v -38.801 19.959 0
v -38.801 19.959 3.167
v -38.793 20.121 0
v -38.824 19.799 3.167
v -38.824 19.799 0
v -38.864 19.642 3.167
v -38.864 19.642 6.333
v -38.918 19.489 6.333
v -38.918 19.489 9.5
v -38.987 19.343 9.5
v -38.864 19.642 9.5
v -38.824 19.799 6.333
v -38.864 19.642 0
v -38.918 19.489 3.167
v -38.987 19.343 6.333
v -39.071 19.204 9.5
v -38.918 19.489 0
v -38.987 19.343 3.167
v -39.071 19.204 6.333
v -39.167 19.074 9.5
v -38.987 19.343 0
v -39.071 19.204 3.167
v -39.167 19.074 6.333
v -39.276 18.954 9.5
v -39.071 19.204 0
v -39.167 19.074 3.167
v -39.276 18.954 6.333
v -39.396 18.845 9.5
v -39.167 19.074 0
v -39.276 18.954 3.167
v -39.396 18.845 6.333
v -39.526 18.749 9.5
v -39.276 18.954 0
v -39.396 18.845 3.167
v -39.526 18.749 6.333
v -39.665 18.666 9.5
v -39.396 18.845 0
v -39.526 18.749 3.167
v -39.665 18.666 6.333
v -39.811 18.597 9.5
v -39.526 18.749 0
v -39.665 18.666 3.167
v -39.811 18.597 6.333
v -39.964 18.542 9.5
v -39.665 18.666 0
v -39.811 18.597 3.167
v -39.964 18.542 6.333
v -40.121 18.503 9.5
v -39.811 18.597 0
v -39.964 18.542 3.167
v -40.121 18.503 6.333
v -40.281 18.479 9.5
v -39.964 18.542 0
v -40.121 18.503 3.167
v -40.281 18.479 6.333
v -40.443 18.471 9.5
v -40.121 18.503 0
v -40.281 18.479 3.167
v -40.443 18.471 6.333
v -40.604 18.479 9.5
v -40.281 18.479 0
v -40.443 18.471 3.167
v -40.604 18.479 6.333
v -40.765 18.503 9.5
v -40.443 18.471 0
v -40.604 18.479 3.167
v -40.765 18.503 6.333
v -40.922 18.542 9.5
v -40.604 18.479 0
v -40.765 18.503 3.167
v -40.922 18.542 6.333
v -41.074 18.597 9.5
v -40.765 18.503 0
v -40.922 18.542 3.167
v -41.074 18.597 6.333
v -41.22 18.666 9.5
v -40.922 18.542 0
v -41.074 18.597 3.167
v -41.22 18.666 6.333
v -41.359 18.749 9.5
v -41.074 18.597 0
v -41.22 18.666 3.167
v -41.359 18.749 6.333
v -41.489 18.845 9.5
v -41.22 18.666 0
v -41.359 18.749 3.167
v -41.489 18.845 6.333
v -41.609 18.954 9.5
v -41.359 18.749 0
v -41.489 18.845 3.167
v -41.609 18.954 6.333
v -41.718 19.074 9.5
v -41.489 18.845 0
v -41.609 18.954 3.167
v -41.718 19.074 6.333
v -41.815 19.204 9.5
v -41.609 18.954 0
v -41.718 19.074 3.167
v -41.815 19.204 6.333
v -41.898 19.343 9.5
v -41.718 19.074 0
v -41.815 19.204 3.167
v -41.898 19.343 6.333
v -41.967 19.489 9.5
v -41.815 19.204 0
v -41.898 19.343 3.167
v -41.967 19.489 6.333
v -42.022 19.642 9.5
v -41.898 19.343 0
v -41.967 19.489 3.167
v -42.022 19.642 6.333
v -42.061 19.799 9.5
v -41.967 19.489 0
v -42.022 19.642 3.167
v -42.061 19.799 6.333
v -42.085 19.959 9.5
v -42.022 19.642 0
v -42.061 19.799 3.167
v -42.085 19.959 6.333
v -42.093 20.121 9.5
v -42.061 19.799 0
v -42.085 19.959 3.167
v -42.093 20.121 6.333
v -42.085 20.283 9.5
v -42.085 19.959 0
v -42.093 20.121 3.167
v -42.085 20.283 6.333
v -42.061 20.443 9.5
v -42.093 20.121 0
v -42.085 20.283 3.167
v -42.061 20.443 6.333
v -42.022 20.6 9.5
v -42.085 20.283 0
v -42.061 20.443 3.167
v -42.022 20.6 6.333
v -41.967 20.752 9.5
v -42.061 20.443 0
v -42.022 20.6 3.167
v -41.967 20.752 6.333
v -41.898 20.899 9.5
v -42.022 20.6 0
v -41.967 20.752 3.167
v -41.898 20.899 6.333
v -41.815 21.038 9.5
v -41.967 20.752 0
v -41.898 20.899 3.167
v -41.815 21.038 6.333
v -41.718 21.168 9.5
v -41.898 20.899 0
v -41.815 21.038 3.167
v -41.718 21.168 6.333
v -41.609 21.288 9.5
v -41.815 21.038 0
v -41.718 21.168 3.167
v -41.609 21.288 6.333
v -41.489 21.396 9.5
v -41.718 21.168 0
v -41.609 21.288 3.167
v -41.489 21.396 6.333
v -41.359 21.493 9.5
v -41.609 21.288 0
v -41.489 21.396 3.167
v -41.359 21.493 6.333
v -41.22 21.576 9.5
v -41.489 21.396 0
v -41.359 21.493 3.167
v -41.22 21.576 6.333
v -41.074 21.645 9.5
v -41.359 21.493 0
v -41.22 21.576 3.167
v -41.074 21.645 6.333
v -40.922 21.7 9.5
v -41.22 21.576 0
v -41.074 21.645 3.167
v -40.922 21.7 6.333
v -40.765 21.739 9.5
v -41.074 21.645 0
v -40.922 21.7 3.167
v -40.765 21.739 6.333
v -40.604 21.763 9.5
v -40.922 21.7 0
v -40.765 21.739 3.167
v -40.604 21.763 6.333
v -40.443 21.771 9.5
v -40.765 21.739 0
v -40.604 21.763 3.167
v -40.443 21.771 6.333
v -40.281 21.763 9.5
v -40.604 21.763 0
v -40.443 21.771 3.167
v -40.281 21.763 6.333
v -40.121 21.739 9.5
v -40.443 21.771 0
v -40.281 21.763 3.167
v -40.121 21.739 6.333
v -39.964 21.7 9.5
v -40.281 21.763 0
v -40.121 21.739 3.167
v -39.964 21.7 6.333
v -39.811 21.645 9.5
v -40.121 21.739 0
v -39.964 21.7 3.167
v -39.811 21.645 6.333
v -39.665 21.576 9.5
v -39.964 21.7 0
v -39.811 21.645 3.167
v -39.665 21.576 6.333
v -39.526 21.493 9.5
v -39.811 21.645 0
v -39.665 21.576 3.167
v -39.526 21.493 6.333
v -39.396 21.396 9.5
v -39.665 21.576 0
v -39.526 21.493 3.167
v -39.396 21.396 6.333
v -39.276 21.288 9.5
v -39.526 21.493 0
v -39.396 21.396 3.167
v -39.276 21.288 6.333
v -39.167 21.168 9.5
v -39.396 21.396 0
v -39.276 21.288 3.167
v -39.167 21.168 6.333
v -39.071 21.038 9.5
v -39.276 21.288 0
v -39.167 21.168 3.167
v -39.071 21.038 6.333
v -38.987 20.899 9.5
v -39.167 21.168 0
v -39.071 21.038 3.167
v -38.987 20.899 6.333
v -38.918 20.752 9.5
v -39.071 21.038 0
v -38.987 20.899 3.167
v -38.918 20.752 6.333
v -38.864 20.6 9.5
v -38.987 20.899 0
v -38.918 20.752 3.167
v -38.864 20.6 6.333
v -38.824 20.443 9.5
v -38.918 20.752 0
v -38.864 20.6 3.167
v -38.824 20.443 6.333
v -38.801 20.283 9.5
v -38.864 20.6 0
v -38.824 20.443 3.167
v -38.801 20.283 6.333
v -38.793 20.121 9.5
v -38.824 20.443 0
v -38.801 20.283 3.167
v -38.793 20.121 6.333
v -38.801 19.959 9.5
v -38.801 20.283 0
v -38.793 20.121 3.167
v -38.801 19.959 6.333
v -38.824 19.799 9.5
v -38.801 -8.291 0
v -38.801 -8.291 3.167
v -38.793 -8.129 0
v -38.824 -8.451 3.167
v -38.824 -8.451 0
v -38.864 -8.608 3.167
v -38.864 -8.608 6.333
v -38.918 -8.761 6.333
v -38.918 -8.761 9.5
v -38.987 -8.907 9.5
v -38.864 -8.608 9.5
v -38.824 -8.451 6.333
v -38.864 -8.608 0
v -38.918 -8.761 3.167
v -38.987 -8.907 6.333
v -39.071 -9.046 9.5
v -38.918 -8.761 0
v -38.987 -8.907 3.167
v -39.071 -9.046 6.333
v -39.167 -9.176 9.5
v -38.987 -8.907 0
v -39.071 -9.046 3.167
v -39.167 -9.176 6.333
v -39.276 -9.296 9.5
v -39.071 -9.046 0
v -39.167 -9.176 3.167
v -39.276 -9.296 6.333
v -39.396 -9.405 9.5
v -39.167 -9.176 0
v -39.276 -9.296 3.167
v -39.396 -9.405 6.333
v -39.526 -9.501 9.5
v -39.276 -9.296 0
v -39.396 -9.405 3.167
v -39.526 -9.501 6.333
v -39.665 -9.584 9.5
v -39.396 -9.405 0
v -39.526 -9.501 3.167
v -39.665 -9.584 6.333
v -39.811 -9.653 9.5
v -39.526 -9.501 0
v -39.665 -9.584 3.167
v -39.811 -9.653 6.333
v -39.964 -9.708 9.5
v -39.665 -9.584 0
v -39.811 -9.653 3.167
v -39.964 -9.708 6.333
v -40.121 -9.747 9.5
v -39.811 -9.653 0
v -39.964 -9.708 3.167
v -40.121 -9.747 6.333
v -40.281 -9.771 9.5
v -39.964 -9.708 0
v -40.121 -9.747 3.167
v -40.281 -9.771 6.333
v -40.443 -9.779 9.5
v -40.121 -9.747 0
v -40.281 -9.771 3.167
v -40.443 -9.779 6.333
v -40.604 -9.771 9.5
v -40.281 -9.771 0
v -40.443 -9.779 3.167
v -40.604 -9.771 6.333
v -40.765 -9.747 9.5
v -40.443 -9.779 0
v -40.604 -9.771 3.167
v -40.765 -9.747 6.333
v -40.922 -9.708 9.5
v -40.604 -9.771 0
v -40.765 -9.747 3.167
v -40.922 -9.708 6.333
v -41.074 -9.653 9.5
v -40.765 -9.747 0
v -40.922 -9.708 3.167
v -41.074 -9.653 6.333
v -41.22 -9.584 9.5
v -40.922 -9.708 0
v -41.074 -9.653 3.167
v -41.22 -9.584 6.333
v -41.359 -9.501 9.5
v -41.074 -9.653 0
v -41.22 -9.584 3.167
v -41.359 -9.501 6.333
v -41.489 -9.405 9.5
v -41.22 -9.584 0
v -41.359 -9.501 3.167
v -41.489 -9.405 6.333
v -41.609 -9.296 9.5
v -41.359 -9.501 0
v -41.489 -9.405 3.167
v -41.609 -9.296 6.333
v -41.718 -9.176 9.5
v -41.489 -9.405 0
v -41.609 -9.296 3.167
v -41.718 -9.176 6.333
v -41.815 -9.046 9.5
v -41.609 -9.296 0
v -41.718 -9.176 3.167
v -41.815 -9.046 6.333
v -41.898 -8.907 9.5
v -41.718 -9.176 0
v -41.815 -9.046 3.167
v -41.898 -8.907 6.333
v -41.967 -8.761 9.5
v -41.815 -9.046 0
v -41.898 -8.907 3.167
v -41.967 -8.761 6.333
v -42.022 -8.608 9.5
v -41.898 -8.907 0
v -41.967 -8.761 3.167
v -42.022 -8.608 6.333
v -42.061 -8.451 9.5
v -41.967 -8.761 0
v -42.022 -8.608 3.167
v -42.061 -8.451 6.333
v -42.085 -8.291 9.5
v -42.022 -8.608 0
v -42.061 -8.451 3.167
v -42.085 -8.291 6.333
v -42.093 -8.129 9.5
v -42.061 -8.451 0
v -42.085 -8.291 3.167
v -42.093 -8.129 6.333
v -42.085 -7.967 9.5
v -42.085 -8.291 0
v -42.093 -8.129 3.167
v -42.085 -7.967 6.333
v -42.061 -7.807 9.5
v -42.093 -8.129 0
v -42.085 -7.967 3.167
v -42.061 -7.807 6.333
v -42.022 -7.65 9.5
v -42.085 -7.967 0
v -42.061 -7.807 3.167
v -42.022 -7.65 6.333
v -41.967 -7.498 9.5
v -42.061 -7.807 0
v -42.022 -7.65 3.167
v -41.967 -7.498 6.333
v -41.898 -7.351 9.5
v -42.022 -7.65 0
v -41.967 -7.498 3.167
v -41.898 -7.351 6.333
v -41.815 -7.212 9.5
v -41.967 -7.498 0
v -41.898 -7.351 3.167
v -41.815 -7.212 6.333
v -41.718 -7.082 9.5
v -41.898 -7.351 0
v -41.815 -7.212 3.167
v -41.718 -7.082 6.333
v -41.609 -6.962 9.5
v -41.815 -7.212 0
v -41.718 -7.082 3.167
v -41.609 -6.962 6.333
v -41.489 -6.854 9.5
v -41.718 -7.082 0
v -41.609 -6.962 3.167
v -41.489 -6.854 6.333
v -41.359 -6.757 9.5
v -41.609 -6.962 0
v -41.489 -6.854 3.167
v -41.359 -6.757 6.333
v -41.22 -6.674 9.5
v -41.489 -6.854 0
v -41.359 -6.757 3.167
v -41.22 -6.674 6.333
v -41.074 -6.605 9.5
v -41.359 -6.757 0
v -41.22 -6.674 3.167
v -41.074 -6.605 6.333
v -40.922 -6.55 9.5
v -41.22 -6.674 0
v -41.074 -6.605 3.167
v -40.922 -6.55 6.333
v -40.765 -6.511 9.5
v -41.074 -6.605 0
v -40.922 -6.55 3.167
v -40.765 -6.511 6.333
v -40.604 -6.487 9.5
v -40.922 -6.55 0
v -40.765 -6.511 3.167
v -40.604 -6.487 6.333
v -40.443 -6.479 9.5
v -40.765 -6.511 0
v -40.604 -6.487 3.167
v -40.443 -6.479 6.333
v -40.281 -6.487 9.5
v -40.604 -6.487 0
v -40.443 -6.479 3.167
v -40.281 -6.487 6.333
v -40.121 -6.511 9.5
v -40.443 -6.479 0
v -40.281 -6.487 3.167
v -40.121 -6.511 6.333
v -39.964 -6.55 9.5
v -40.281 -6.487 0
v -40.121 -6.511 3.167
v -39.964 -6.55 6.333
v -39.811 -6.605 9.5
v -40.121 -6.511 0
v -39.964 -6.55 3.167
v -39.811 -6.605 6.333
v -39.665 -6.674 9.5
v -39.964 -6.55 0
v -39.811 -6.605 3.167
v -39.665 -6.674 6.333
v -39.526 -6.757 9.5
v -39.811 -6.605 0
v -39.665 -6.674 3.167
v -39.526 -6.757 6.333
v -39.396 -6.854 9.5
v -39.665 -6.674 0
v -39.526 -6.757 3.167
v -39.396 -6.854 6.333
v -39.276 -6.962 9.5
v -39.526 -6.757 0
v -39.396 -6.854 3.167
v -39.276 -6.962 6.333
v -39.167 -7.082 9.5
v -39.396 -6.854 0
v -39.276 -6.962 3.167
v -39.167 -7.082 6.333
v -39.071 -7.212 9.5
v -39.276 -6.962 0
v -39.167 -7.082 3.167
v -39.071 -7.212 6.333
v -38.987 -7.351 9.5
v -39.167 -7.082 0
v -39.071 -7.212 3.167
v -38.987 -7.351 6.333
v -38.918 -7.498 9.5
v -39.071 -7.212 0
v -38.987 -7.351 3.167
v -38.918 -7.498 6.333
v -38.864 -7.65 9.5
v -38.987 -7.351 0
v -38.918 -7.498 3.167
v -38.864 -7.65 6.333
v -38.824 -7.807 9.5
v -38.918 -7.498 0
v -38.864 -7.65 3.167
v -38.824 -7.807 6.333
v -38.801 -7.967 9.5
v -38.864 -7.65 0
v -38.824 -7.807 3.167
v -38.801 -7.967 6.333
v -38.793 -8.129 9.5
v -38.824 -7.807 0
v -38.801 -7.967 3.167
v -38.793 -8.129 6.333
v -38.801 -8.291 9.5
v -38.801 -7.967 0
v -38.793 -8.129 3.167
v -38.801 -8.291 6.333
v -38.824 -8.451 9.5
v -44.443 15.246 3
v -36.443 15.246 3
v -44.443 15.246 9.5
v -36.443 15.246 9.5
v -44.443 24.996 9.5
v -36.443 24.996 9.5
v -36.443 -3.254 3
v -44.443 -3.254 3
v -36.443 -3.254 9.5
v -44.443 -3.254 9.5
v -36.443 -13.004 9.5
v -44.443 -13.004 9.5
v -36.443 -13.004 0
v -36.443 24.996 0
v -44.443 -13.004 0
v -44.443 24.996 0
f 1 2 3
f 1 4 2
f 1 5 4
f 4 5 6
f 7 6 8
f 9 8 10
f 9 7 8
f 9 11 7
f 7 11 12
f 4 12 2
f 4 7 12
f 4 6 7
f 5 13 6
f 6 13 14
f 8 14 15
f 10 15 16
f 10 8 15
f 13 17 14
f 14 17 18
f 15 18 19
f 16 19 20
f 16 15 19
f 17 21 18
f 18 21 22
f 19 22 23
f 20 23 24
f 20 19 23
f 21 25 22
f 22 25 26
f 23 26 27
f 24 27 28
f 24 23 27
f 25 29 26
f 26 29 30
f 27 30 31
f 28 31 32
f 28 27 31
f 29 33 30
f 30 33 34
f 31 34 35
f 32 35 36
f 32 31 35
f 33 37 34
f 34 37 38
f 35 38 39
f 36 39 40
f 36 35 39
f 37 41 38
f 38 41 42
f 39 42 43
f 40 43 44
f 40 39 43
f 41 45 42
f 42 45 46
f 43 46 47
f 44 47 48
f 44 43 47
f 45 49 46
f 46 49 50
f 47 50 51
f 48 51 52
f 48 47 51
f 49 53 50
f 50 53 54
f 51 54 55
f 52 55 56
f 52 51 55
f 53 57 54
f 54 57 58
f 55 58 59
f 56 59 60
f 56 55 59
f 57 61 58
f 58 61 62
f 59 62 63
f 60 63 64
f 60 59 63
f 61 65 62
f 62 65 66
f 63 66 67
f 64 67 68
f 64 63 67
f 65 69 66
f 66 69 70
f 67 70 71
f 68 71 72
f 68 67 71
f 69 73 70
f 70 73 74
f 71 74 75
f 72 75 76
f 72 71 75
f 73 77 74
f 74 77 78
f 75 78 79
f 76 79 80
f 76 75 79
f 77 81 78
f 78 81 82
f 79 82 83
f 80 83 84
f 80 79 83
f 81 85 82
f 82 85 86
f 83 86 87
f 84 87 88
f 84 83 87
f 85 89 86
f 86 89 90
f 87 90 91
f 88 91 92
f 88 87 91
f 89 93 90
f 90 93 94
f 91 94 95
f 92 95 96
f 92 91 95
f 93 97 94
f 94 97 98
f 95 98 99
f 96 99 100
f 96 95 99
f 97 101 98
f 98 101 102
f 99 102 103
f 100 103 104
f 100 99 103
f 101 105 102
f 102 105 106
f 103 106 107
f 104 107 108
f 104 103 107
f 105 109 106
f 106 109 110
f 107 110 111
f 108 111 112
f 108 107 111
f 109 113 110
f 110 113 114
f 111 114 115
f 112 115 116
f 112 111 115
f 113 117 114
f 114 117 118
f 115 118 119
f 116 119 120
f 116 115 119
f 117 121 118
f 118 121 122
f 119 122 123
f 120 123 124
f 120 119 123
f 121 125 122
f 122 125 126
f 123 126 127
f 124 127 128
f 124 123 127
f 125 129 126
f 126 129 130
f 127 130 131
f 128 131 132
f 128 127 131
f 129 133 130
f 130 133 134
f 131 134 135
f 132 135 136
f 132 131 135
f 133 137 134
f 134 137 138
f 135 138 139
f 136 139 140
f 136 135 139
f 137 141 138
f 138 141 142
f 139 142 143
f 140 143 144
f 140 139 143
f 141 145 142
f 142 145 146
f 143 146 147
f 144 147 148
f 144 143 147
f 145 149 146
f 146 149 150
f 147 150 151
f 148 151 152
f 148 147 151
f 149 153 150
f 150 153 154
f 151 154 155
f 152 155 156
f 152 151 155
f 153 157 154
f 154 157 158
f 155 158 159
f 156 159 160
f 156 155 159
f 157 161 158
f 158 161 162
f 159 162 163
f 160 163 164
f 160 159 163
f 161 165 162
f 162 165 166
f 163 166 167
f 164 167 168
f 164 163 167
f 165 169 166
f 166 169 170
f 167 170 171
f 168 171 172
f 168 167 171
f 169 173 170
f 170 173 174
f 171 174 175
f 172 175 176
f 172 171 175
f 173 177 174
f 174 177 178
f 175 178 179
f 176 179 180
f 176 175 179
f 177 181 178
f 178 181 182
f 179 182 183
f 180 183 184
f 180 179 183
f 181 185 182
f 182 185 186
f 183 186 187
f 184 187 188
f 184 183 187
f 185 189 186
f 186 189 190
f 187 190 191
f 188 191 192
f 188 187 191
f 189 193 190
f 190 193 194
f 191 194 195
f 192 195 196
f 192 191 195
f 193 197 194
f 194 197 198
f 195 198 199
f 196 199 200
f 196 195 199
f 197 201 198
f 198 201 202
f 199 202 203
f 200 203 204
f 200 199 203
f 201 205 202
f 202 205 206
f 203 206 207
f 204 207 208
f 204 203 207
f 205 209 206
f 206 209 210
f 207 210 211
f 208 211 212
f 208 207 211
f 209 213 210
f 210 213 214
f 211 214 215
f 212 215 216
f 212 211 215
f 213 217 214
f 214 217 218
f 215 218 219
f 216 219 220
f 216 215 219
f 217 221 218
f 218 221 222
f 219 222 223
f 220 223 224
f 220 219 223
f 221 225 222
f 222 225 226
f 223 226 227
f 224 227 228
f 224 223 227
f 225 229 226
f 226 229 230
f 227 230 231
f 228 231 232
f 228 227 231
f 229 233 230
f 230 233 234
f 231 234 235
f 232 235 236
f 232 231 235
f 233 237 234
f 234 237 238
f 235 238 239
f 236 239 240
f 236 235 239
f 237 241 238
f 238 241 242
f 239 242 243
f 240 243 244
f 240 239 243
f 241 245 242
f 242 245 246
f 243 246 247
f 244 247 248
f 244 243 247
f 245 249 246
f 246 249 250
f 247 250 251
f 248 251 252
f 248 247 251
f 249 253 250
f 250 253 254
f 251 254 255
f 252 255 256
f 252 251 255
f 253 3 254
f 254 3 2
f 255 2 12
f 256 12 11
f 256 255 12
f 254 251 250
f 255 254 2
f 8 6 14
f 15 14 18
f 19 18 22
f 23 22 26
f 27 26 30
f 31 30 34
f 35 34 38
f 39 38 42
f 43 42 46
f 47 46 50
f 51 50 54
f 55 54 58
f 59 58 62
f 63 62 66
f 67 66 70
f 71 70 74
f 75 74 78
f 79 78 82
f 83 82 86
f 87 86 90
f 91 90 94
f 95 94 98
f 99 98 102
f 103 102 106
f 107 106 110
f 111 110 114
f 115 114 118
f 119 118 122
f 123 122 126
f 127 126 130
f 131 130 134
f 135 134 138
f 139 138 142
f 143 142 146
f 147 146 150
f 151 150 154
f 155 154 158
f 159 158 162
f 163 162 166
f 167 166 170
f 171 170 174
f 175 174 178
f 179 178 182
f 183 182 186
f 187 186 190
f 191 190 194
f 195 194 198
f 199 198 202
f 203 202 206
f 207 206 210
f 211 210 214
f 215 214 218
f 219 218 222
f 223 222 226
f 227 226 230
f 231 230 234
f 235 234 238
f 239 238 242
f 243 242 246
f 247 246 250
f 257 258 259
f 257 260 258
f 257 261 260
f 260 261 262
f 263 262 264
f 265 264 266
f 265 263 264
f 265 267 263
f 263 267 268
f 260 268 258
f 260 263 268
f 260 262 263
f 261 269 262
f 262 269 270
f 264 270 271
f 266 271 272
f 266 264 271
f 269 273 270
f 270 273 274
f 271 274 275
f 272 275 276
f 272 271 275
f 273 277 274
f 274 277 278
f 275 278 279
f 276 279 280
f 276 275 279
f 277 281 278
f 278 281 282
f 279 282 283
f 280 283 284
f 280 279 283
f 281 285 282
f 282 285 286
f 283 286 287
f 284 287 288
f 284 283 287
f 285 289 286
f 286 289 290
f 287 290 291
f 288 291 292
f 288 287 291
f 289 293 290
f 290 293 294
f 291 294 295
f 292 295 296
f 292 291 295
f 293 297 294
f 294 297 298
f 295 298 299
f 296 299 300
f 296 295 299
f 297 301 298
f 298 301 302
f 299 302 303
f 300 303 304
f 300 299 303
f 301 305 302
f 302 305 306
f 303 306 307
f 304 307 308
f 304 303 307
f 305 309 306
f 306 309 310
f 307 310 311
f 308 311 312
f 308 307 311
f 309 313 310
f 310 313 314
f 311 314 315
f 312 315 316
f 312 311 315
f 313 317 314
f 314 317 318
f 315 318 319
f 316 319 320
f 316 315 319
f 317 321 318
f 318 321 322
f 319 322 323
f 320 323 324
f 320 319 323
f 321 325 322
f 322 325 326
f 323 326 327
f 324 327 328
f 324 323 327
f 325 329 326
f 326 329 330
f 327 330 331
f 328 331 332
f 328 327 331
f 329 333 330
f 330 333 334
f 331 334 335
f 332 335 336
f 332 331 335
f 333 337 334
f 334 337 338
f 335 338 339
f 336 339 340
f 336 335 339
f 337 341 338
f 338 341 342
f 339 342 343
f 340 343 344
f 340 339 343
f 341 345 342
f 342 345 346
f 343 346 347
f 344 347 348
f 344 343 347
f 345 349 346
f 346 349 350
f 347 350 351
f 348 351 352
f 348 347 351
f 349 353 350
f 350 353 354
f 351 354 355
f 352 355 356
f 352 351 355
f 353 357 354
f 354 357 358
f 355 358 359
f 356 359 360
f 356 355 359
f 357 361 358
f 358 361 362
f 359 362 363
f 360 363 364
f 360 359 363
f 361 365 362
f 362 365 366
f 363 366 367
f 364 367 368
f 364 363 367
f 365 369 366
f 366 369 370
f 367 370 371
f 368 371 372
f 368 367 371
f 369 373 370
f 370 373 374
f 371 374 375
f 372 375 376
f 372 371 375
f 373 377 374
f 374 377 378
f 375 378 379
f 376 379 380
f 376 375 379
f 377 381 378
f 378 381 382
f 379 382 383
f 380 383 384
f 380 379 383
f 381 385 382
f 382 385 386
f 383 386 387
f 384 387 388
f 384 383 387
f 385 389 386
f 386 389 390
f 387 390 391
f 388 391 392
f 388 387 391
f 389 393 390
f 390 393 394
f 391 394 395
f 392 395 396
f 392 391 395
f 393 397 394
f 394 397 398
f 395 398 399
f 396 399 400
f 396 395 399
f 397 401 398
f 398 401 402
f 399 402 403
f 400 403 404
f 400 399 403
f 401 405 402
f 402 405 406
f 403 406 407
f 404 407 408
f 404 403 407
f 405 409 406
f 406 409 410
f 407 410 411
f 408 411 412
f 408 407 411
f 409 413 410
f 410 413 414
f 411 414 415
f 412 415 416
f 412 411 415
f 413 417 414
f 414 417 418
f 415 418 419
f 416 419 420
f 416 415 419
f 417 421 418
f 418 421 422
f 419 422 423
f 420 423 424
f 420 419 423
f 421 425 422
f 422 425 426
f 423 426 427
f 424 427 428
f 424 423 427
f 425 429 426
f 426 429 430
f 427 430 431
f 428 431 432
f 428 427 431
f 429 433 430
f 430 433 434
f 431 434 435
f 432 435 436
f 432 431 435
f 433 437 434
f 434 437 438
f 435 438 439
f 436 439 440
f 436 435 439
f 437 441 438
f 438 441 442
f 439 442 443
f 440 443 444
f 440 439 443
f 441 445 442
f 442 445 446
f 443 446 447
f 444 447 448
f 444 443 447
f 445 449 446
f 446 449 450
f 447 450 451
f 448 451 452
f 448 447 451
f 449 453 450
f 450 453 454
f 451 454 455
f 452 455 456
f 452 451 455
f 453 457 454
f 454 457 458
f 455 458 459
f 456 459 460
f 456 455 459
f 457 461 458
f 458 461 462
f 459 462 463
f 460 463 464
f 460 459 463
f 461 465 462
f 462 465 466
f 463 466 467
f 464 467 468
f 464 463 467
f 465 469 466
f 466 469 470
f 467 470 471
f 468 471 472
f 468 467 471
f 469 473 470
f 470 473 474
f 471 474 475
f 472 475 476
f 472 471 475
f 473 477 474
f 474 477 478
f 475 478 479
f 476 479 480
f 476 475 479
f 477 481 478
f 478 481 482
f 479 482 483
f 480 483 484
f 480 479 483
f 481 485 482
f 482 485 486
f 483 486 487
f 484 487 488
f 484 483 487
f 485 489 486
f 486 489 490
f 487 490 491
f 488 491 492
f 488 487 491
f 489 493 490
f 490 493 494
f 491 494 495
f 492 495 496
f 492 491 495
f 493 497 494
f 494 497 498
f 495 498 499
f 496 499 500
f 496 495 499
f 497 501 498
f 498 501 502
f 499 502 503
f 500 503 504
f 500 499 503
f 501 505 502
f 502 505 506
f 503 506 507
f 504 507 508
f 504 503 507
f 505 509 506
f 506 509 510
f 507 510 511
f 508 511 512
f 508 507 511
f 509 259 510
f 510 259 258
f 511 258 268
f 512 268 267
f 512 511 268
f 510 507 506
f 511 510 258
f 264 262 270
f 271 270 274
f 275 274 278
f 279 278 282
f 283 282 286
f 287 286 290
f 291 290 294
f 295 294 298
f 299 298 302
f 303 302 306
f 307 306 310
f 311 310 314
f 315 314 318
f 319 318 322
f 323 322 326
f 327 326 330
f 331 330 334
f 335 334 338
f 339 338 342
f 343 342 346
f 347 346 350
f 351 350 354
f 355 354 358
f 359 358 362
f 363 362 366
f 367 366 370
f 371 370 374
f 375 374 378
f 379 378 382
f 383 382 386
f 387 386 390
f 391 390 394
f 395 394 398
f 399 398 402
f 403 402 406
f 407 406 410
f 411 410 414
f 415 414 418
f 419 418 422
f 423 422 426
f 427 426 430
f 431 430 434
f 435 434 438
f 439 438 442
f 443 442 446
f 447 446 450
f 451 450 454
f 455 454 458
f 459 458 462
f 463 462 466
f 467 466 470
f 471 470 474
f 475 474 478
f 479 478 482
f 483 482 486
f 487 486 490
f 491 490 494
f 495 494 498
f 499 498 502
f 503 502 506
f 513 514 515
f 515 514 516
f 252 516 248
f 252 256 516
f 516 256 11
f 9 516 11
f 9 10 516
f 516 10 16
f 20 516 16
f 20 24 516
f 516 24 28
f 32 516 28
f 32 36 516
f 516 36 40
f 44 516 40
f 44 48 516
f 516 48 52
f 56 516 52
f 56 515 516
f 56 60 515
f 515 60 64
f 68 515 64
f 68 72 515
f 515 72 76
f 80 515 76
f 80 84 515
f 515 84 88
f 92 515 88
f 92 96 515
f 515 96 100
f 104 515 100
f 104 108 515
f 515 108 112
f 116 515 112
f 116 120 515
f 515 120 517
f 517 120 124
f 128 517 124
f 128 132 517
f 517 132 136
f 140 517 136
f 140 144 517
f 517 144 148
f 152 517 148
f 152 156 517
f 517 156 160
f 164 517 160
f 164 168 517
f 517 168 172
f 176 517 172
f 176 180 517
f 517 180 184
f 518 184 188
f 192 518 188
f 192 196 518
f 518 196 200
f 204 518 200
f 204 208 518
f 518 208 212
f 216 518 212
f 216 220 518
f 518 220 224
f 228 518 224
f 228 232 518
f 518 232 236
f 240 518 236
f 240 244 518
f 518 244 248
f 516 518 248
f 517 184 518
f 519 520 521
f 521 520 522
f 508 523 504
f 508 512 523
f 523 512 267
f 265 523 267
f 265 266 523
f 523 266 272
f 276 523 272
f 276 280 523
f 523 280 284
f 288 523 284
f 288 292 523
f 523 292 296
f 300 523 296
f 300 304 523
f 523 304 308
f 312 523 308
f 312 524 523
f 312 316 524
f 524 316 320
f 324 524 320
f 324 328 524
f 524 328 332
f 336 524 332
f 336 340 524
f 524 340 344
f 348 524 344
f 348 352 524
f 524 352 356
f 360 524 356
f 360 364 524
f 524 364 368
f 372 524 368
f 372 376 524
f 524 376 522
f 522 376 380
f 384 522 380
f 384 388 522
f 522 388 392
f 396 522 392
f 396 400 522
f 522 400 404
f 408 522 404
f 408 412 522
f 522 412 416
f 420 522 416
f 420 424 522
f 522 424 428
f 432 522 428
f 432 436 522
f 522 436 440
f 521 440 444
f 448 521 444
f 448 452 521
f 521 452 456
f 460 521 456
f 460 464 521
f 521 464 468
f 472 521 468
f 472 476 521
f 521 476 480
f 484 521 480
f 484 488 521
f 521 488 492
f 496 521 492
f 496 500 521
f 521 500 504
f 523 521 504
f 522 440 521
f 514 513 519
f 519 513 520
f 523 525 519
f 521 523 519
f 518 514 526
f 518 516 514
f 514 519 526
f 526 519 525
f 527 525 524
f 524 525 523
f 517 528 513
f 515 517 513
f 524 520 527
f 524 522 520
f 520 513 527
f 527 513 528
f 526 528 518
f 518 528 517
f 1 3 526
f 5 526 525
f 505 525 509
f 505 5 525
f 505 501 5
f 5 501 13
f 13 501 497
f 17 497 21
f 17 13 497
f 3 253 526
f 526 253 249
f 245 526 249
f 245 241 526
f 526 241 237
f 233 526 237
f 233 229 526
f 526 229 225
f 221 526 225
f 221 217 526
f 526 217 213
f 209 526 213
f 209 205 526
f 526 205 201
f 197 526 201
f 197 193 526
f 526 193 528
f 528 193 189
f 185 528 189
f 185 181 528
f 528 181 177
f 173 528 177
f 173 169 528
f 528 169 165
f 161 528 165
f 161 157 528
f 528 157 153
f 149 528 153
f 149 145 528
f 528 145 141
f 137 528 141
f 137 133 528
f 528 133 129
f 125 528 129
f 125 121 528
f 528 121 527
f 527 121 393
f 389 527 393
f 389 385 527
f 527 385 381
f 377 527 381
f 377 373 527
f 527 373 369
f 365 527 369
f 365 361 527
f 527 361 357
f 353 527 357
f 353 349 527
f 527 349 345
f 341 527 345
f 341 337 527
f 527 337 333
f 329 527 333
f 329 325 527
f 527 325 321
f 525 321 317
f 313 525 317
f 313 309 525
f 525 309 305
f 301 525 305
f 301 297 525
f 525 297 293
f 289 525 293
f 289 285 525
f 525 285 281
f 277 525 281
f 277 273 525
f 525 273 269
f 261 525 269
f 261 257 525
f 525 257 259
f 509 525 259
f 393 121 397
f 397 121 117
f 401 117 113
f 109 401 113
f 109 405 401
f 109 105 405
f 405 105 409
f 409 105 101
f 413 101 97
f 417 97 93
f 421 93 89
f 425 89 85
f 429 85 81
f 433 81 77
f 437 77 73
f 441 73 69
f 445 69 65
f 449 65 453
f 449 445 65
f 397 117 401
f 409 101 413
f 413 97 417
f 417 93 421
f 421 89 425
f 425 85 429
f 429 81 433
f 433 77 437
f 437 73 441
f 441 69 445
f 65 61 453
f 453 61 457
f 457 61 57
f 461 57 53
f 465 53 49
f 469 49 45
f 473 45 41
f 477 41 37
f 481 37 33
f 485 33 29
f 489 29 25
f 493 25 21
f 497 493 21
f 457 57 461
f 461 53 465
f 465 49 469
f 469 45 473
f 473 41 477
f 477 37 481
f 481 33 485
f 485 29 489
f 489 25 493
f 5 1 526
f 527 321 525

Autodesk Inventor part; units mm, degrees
ref_plane "YZ Plane" through (0, 0, 0) normal (1, 0, 0) x (0, 1, 0)
ref_plane "XZ Plane" through (0, 0, 0) normal (0, 1, 0) x (-1, 0, 0)
ref_plane "XY Plane" through (0, 0, 0) normal (0, 0, 1) x (1, 0, 0)
sketch "Sketch1" plane through (0, 0, 0) normal (0, 0, 1) x (1, 0, 0)
  line L0 (-44.4426, 24.9959) -> (-36.4426, 24.9959)
  line L1 (-36.4426, 24.9959) -> (-36.4426, -13.0041)
  line L2 (-36.4426, -13.0041) -> (-44.4426, -13.0041)
  line L3 (-44.4426, -13.0041) -> (-44.4426, 24.9959)
  point P0 (0, 0)
  dimension "d0" = 38
  dimension "d2" = 8
extrude "Extrusion1" add sketch "Sketch1" along normal blind 3
sketch "Sketch2" plane through (0, 0, 3) normal (0, 0, 1) x (1, 0, 0)
  line L0 (-44.4426, 24.9959) -> (-44.4426, -13.0041) construction
  line L1 (-44.4426, -13.0041) -> (-36.4426, -13.0041) projected
  line L2 (-36.4426, -13.0041) -> (-36.4426, 24.9959) projected
  line L3 (-44.4426, 24.9959) -> (-36.4426, 24.9959)
  line L4 (-36.4426, 24.9959) -> (-36.4426, 15.2459)
  line L5 (-36.4426, 15.2459) -> (-44.4426, 15.2459)
  line L6 (-44.4426, 15.2459) -> (-44.4426, 24.9959)
  line L7 (-36.4426, -13.0041) -> (-44.4426, -13.0041)
  line L8 (-44.4426, -13.0041) -> (-44.4426, -3.2541)
  line L9 (-44.4426, -3.2541) -> (-36.4426, -3.2541)
  line L10 (-36.4426, -3.2541) -> (-36.4426, -13.0041)
  point P0 (0, 0)
  dimension "d5" = 9.75
  dimension "d7" = 9.75
extrude "Extrusion2" add sketch "Sketch2" along normal blind 6.5
sketch "Sketch3" plane through (0, 0, 9.5) normal (0, 0, 1) x (1, 0, 0)
  line L0 (-36.4426, -13.0041) -> (-36.4426, -3.2541) projected
  line L1 (-36.4426, -3.2541) -> (-44.4426, -3.2541) projected
  line L2 (-44.4426, -3.2541) -> (-44.4426, -13.0041) projected
  line L3 (-44.4426, -13.0041) -> (-36.4426, -13.0041) projected
  line L4 (-36.4426, 24.9959) -> (-44.4426, 15.2459) construction
  line L5 (-36.4426, -3.2541) -> (-44.4426, -13.0041) construction
  circle A0 centre (-40.4426, 20.1209) radius 1.65
  circle A1 centre (-40.4426, -8.1291) radius 1.65
  point P0 (0, 0)
  dimension "d10" = 3.3
extrude "Extrusion3" cut sketch "Sketch3" against normal through all contours A0 | A1
properties part number "Pump clamp MM0312"
